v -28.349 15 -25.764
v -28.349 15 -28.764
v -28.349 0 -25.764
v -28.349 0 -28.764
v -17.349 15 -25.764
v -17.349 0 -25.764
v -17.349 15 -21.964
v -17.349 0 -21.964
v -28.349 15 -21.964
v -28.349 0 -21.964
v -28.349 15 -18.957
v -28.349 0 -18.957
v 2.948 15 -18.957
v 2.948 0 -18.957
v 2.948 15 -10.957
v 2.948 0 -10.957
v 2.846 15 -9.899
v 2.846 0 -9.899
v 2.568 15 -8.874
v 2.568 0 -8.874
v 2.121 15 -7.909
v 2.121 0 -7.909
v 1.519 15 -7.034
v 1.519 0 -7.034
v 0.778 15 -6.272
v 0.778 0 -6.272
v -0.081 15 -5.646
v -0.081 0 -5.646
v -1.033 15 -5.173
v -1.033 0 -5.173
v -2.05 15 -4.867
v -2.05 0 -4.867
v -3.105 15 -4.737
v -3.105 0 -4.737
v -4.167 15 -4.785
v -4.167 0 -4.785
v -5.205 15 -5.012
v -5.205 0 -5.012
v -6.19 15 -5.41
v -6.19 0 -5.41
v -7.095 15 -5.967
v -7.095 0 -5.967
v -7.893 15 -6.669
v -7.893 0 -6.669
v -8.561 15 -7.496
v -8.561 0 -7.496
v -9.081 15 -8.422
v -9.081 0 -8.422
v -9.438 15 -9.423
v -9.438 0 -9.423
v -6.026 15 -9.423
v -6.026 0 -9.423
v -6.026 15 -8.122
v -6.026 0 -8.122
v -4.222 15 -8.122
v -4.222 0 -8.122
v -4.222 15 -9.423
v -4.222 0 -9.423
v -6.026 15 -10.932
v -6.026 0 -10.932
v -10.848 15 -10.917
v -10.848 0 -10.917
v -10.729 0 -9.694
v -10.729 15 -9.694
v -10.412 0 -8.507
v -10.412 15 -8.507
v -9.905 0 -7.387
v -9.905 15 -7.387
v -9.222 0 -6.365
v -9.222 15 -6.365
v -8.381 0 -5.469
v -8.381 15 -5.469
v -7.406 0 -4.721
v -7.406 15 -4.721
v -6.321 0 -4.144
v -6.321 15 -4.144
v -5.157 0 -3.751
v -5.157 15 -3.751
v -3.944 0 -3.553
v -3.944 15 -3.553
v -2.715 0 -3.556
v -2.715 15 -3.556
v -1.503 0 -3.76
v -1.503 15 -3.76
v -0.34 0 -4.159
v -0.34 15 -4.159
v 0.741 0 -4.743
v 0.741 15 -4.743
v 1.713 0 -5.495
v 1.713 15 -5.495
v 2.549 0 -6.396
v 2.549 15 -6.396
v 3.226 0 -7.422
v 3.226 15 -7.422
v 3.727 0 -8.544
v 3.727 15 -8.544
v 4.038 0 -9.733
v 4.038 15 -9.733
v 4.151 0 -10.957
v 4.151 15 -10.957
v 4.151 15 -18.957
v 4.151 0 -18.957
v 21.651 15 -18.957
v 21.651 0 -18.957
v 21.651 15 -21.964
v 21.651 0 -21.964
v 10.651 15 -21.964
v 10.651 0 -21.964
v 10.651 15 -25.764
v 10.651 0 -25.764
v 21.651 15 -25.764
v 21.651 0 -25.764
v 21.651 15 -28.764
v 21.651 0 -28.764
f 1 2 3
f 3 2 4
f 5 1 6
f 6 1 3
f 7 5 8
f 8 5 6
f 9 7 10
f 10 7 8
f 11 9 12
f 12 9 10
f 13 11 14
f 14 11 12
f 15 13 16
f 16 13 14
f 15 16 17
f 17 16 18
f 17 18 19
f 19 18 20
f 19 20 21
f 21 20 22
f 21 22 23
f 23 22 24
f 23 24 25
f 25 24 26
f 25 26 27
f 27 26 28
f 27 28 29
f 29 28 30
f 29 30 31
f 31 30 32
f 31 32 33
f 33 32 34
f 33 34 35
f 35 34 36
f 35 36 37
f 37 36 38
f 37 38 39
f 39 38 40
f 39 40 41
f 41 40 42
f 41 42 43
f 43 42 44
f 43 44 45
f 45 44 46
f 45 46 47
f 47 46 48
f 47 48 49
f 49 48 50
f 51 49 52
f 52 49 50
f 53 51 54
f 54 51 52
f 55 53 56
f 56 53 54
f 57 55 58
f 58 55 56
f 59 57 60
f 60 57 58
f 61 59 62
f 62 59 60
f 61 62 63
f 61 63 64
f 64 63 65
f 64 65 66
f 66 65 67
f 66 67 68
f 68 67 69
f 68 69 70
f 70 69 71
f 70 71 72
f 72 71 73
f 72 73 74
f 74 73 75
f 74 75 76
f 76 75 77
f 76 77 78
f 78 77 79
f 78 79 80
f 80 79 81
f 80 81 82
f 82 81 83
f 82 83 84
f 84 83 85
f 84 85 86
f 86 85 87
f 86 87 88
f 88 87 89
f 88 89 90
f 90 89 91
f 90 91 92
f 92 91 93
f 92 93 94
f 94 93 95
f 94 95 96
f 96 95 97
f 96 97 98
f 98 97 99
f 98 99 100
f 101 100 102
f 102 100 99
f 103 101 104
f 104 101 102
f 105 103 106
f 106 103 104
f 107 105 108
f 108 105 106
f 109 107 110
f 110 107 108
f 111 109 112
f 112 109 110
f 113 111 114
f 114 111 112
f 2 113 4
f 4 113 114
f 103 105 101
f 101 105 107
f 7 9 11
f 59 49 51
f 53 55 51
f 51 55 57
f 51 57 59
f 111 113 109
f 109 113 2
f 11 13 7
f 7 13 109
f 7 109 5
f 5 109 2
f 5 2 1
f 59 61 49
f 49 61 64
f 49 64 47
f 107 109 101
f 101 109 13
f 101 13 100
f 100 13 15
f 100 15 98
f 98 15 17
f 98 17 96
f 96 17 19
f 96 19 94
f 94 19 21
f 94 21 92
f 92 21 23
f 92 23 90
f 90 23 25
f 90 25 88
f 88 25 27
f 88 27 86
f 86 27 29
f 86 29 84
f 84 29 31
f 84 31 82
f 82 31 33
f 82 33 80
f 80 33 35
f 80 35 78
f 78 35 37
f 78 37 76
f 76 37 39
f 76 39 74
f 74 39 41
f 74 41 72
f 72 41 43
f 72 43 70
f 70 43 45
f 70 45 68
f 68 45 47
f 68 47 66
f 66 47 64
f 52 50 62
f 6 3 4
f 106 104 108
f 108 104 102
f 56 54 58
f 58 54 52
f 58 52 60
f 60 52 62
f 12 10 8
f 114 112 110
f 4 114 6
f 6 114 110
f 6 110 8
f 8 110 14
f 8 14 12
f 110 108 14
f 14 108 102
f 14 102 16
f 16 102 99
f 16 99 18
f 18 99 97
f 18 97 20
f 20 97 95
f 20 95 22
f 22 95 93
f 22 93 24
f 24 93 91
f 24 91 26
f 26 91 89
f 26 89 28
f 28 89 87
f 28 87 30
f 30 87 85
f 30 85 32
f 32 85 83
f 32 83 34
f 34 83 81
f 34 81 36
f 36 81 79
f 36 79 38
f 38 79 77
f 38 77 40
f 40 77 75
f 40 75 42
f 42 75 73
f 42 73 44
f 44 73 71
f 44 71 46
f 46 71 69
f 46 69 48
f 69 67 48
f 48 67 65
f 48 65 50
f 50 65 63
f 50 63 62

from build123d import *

# Parameters (mm, degrees)
BOSS_EXTRUDE2_DEPTH = 15


with BuildPart() as part:
    # Sketch2 → Boss-Extrude2 (new body)
    with BuildSketch(Plane(origin=(0, 0, 0), x_dir=(1, 0, 0), z_dir=(0, 1, 0))):
        with BuildLine():
            Line((-28.349494605, 21.964136687), (-17.349494605, 21.964136687))
            Line((-17.349494605, 21.964136687), (-17.349494605, 25.764136687))
            Line((-17.349494605, 25.764136687), (-28.349494605, 25.764136687))
            Line((-28.349494605, 25.764136687), (-28.349494605, 28.764136687))
            Line((-28.349494605, 28.764136687), (21.650505395, 28.764136687))
            Line((21.650505395, 28.764136687), (21.650505395, 25.764136687))
            Line((21.650505395, 25.764136687), (10.650505395, 25.764136687))
            Line((10.650505395, 25.764136687), (10.650505395, 21.964136687))
            Line((10.650505395, 21.964136687), (21.650505395, 21.964136687))
            Line((21.650505395, 21.964136687), (21.650505395, 18.957031621))
            Line((21.650505395, 18.957031621), (4.150505395, 18.957031621))
            Line((4.150505395, 18.957031621), (4.150505395, 10.957031621))
            ThreePointArc((4.150505395, 10.957031621), (-3.329004451, 3.529483044), (-10.847714263, 10.91734797))
            Line((-10.847714263, 10.91734797), (-6.026180838, 10.932389281))
            Line((-6.026180838, 10.932389281), (-4.222493535, 9.423226245))
            Line((-4.222493535, 9.423226245), (-4.222493535, 8.122210377))
            Line((-4.222493535, 8.122210377), (-6.025980027, 8.122210377))
            Line((-6.025980027, 8.122210377), (-6.025980027, 9.423279207))
            Line((-6.025980027, 9.423279207), (-9.437714366, 9.423279207))
            ThreePointArc((-9.437714366, 9.423279207), (-2.574965526, 4.779817175), (2.947813029, 10.957031621))
            Line((2.947813029, 10.957031621), (2.947813029, 18.957031621))
            Line((2.947813029, 18.957031621), (-28.349494605, 18.957031621))
            Line((-28.349494605, 18.957031621), (-28.349494605, 21.964136687))
        make_face()
    extrude(amount=BOSS_EXTRUDE2_DEPTH)


solid = part.part
